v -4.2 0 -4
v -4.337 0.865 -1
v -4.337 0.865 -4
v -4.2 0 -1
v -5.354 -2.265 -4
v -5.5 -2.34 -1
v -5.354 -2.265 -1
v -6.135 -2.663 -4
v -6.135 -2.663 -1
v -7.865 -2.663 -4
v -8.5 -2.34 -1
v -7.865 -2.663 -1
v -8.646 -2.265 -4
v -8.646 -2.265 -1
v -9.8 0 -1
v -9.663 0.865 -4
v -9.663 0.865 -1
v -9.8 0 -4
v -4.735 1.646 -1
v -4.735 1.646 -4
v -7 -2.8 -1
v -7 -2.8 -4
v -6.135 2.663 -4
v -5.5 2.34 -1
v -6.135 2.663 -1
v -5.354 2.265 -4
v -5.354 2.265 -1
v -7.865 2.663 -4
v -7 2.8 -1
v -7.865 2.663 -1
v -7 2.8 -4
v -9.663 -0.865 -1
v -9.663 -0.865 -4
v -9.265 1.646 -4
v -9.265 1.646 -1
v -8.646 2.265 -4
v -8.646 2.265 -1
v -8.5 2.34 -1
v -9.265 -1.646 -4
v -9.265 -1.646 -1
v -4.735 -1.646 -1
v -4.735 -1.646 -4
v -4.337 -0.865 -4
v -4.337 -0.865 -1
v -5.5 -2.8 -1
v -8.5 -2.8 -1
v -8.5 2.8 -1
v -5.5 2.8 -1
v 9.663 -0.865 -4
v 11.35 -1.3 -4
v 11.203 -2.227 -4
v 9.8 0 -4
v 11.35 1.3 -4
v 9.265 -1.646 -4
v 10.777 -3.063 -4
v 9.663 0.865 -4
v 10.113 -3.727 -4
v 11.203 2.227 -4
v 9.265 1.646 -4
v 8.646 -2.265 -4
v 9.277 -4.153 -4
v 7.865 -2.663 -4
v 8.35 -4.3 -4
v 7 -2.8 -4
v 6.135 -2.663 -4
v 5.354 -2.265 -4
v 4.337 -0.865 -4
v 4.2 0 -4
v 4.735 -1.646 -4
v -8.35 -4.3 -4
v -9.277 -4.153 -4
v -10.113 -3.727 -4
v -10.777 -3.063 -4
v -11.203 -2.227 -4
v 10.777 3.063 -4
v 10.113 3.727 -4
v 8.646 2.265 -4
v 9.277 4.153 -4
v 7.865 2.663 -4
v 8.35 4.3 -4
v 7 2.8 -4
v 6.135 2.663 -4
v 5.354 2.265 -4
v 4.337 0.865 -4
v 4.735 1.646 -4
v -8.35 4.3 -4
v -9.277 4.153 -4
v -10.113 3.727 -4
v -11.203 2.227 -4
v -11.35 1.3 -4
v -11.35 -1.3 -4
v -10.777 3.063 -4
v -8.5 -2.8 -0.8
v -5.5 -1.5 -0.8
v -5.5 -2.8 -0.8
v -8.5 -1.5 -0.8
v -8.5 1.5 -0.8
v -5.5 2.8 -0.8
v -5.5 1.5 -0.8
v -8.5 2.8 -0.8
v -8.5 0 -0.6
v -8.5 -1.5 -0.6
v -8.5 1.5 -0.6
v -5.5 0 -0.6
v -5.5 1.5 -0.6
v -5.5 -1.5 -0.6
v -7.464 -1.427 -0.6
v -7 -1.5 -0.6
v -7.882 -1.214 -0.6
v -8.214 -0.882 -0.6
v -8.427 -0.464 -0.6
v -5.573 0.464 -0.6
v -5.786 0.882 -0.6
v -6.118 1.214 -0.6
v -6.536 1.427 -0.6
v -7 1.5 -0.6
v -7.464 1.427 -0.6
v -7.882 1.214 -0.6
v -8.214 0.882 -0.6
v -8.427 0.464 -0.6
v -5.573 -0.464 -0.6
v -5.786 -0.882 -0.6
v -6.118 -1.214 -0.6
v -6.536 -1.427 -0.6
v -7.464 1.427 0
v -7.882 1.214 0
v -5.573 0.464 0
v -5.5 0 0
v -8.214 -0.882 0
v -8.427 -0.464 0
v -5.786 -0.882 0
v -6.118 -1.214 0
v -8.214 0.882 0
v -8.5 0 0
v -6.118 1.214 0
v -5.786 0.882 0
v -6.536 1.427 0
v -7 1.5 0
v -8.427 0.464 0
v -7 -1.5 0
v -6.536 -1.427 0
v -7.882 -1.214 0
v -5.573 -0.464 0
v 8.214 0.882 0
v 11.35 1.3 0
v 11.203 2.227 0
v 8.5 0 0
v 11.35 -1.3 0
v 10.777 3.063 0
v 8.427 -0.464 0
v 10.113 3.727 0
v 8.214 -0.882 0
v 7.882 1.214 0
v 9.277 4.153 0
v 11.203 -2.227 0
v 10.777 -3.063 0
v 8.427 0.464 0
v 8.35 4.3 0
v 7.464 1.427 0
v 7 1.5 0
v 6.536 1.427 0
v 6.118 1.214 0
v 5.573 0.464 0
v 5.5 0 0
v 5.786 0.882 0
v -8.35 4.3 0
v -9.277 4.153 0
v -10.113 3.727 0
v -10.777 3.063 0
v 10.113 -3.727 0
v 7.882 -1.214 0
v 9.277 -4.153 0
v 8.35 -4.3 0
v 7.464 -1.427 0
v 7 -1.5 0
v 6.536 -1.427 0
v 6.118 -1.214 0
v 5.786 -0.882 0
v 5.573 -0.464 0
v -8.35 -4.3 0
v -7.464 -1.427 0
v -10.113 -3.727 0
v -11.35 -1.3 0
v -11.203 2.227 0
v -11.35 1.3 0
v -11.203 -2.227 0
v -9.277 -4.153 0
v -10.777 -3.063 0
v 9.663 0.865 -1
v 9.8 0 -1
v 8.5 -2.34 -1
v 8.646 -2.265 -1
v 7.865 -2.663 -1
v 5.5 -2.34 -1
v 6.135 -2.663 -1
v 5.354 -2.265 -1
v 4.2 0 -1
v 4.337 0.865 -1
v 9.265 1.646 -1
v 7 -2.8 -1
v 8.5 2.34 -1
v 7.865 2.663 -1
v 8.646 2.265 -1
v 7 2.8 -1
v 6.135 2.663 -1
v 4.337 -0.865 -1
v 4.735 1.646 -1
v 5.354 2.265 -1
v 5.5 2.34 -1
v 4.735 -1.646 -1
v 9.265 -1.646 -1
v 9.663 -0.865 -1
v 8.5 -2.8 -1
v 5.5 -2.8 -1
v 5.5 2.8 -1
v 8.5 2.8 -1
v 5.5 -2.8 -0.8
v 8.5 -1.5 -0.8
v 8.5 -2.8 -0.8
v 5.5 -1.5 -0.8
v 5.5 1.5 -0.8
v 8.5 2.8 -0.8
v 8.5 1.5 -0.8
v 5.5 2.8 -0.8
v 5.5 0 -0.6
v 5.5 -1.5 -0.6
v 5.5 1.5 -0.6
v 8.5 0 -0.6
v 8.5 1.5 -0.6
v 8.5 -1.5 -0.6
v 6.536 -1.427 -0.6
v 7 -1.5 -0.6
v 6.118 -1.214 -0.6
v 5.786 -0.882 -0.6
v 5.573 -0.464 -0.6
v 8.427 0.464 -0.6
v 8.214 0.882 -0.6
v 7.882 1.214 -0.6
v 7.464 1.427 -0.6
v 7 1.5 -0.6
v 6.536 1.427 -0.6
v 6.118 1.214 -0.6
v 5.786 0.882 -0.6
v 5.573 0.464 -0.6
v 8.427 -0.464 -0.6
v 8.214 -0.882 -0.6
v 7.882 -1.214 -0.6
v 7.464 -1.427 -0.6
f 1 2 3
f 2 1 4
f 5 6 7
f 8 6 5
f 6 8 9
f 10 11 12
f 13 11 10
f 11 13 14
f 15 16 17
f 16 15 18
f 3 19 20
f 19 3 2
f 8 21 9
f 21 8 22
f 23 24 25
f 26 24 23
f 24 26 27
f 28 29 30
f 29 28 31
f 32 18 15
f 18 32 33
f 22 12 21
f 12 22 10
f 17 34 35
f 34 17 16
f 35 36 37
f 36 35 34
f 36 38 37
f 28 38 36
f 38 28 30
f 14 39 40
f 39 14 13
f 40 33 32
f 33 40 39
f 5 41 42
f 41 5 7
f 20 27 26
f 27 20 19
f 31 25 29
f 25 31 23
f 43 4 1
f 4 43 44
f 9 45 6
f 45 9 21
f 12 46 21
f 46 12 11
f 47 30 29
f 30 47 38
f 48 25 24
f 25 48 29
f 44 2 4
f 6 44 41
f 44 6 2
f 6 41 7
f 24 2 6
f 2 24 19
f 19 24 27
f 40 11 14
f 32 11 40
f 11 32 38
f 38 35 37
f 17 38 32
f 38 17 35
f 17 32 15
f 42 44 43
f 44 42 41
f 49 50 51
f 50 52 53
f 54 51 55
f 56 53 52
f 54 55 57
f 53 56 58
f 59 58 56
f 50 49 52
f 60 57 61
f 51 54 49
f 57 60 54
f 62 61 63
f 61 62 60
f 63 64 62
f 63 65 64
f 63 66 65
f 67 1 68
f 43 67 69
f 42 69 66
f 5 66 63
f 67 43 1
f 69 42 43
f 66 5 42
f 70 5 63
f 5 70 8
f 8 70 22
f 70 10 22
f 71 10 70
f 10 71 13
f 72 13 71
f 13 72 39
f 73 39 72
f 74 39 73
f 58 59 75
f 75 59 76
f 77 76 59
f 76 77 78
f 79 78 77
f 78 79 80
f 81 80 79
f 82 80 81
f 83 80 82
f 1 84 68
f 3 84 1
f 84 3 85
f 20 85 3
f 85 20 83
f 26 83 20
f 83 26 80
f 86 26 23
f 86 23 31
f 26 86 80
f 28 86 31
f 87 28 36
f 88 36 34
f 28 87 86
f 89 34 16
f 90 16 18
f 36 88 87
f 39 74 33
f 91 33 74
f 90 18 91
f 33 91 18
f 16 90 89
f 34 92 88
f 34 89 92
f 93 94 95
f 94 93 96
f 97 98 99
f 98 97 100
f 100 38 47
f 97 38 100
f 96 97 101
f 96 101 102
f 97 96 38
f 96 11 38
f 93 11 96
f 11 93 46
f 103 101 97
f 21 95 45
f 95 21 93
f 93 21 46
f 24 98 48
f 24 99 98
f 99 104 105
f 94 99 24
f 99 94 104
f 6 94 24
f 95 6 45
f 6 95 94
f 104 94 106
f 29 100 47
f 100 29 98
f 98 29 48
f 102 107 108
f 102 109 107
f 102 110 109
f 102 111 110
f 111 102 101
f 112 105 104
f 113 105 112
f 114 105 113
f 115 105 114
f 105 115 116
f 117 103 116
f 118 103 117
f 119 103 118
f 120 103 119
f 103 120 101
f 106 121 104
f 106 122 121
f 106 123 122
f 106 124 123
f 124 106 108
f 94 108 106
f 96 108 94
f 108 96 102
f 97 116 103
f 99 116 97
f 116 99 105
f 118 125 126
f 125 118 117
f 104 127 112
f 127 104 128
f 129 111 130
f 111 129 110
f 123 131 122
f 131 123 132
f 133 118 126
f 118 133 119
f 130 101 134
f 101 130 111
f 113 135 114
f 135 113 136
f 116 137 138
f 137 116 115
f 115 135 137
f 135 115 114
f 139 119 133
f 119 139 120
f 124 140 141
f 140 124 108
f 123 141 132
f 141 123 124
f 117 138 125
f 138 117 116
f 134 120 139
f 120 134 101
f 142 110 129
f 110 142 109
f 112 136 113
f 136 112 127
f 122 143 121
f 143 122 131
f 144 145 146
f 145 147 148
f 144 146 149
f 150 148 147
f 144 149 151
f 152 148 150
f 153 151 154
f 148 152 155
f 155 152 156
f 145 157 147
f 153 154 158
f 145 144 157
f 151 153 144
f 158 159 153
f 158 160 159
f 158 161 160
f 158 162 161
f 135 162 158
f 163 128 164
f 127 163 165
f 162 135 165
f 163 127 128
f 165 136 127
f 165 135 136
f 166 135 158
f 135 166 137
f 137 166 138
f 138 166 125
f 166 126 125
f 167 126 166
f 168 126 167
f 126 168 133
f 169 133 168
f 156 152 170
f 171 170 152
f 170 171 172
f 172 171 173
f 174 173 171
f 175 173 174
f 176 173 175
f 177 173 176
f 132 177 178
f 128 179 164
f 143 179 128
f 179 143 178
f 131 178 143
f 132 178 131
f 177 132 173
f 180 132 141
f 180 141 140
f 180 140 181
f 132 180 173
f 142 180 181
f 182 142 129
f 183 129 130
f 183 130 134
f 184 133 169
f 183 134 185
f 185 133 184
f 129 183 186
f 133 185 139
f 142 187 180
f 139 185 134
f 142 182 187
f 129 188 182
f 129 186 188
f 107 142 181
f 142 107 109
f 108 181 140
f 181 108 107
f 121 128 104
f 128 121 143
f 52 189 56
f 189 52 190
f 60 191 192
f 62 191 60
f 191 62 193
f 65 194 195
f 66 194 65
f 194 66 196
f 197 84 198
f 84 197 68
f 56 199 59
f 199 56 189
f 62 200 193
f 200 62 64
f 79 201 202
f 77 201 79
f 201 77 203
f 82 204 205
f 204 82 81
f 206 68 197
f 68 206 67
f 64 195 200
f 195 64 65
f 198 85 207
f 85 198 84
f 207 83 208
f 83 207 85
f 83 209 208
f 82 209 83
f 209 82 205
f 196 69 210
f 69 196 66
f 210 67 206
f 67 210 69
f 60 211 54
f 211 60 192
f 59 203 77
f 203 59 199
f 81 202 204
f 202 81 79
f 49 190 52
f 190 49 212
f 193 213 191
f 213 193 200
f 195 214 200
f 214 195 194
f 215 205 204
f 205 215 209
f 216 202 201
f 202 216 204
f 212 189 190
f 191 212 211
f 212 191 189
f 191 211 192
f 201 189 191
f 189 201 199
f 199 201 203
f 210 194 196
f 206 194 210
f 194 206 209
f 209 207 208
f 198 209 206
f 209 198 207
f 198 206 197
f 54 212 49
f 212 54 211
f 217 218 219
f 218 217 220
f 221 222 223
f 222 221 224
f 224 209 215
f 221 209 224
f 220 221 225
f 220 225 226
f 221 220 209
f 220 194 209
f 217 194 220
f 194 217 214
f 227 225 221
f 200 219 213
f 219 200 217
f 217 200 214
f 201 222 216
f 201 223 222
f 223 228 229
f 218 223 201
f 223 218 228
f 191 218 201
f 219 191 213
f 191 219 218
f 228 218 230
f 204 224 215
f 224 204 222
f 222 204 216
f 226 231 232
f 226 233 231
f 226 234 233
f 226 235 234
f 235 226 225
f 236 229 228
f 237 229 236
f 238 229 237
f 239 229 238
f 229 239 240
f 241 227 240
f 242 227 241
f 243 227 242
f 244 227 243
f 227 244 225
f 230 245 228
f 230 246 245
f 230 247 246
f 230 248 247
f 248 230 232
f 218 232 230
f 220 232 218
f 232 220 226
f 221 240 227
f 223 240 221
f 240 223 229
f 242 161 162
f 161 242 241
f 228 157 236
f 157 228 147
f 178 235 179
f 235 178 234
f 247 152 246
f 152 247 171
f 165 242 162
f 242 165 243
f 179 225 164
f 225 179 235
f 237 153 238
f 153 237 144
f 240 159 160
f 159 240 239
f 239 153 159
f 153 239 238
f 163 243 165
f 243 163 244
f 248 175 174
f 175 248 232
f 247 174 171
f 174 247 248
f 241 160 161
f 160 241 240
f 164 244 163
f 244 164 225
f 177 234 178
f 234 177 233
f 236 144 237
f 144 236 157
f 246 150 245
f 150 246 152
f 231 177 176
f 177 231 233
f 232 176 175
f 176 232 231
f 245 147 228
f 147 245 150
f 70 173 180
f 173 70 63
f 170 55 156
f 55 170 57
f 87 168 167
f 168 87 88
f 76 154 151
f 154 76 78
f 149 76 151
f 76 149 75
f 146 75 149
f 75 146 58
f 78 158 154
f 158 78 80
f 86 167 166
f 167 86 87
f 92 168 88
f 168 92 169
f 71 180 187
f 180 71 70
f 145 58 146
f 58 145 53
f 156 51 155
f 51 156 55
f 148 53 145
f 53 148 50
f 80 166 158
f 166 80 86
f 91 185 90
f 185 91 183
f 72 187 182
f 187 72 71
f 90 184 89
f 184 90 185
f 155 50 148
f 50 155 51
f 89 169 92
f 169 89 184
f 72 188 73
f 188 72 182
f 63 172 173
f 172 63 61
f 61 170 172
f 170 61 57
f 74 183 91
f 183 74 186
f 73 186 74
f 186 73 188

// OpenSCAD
// file: ../lib/utils.scad
include <params.scad>;

function tol(val) = val - tolerance;

module cone(r, angle, invert=false) {
    h = tan((180 - angle) / 2) * r;
    translate([0, 0, -h]) {
        if (invert) {
                cylinder(r1=r,r2=0,h=h, $fn=20); 
        } else {
            cylinder(r1=0,r2=r,h=h, $fn=20); 
        }
    }
}

module roundrect(vect, r, center=false, $fn=20) {
    sq = len(vect) > 1
        ? [for (i = [0:1:len(vect)-1]) vect[i] - r * 2]
        : vect - r * 2;
    if (center) {
        translate([-(sq[0]+r*2)/2,-(sq[1]+r*2)/2])
        minkowski() {
            square(sq);
            translate([r, r])
                circle(r=r);
        }
    } else {
        minkowski() {
            square(sq);
            translate([r, r])
                circle(r=r);
        }
    }
}

module profile($fn=20) {
    minkowski() {
        translate([fan_case_radius, fan_case_radius, 0])
            square(fan_case - fan_case_radius * 2);
        circle(fan_case_radius, $fn);
    }
}

module fan_mount_points(radius, $fn=20) {
    offset = (fan_case - fan_screw_distance) / 2;
    translate([offset, offset, 0]) {
        circle(radius, $fn);
        translate([fan_screw_distance, 0, 0])
            circle(radius, $fn);
        translate([fan_screw_distance, fan_screw_distance, 0])
            circle(radius, $fn);
        translate([0, fan_screw_distance, 0])
            circle(radius, $fn);
    }
}

module square_grill(width, height, fin_width, fin_count) {
    fin_spacing = width / fin_count;
    difference() {
        square(width);
        union() {
            for (i = [0:1:fin_count]) {
                translate([(i + 1) * fin_spacing - (fin_spacing / 2) - (fin_width / 2), 0, 0])
                    square([fin_width, height]);
            }
        }
    }
}

module bushing(outer_r, inner_r, h) {
    linear_extrude(h)
        difference() {
            circle(r=outer_r);
            circle(r=inner_r);
        }
}

module screw_at_origin(r, d, l, head, head_d, cap, angle) {
    translate([0, 0, -l])
        screw(r, d, l, head, head_d, cap, angle);
}

module screw(r, d, l, head, head_d, cap, angle, fn=20, head_fn) {
    radius = r > 0 ? r : d / 2;
    head_r = head > 0 ? head : head_d / 2;
    hfn = head_fn ? head_fn : fn;

    union() {
        if (angle) {
            translate([0, 0, l])
                cone(head_r, angle, false);
        }
        linear_extrude(l)
            circle(r=radius, $fn=fn);
        if (cap > 0) {
            union() {
                translate([0, 0, l - cap])
                    linear_extrude(cap)
                        circle(r=head_r, $fn=hfn);
                translate([0, 0, l - cap - layer_height])
                    linear_extrude(layer_height)
                        square([radius * 2, head_r*2], center=true);
                translate([0, 0, l - cap - layer_height*2])
                    linear_extrude(layer_height)
                        square([radius * 2, radius*2], center=true);
            }
        }
    }
}

module inset_screw(r, d, l, head, head_d, cap, angle, inset, fn=20, head_fn) {
    screw_height = l - inset;
    head_r = head > 0 ? head : head_d / 2;

    union() {
        screw(
            r=r,
            d=d,
            l=screw_height,
            head=head_r,
            cap=cap,
            angle=angle,
            fn=fn,
            head_fn=head_fn
        );
        translate([0, 0, screw_height])
            linear_extrude(inset)
                circle(r=head_r, $fn=fn);
    }
}

function inch_to_mm(inches) = inches * 25.4;
// file: ../lib/params.scad
/*************/
/** Exhaust **/
/*************/

/**
 * Fan case sizes: used for all fan parts, including adapters, inlets
 * grills.
 */
fan_case = 120;
fan_screw_distance = 105;
fan_case_depth = 25;
fan_case_radius = 5;
fan_case_screw_radius = 2.5;
fan_case_socket_cap_radius = 5.6 / 2;
fan_case_screw_head_radius = 3;
fan_case_screw_head_angle = 90;

/**
 * Fan grill
 */
grill_screw_size = 3;
grill_screw_radius = grill_screw_size / 2;
grill_screw_inset = 2;
grill_radius = 114 / 2;
grill_fin_offset = 10;
grill_fin_thickness = 2;
grill_fin_degrees = 30;

rear_grill_thickness = 2;

front_grill_thickness = 2;
front_grill_fin_count = 6;
front_grill_fin_thickness = 2;

/**
 * Fan duct filter
 */
filter_thickness = 5;
filter_width = fan_screw_distance - fan_case_screw_radius * 3;
filter_offset = (fan_case - filter_width) / 2;

base_retainer_thickness = 2;
base_height = 30;
base_cut_offset = 10;
base_retainer_inset = 4;

/**
 * Fan to duct adapter
 */
adapter_thickness = 2;
adapter_duct_in = 4;
adapter_height = 14;
adapter_duct_height = 50;
flat_adapter_duct_height = 50;
flat_adapter_screw_radius = 2;
flat_adapter_screw_head_radius = 4;

/**
 * Fan adapter filter caddy
 */
caddy_thickness = 2;
caddy_handle_width = 20;
caddy_handle_depth = 10;
caddy_handle_grip_count = 5;
caddy_handle_grip_depth = 1;
caddy_handle_grip_width = 1;
caddy_clip_height = 2;
caddy_clip_depth = 6;
caddy_clip_offset = 1;

/***************/
/** Enclosure **/
/***************/

/**
 * Enclosure foot
 */
foot_lower_radius = 15;
foot_upper_radius = 20;
foot_height = 18;
foot_inset_radius = 4;
foot_inset_depth = 3;
foot_screw_radius = 4;
foot_screw_inset = 6;
foot_screw_head_radius = 8;

/**
 * Power supply attachment
 */
power_supply_case_thickness = 3.0;
power_supply_screw_radius = 1.5;
power_supply_bushing_radius = 7.5;

power_supply_cable_pass_width = 18;
power_supply_cable_pass_height = 5;
power_supply_cable_pass_overhang = 5;
power_supply_cable_pass_overhang_depth = power_supply_case_thickness;
power_supply_cable_pass_depth = 3;
power_supply_cable_pass_thickness = 3;

/**
 * LED strip holder
 */
led_strip_cutout = 0.2;
led_strip_depth = 4;
led_strip_width = 8;
led_strip_screw_offset = 1.5;
led_strip_screw_radius = 1.5;
led_strip_screw_head = 2.8;
led_strip_nut_head = 3.25;
led_strip_nut_inset = 3;
led_strip_screw_inset = 3;

/**************/
/** Filament **/
/**************/

/**
 * Filament case passthrough
 */
through_base_width = 60;
through_base_height = 20;
through_base_depth = 5;
through_base_screw_offset = 10;
through_base_screw_radius = 1.5;
through_base_screw_head = 2.8;
through_base_nut_head = 3.25;
through_base_nut_inset = 3;
through_base_screw_inset = 3;
through_base_fitting_d = 5;
case_thickness = 1;
case_through_radius = 6;
filament_radius = 1;

inlet_length = 10;
inlet_outer_radius = 3;
inlet_inner_radius = 2;
inlet_angle = -20;


/**********/
/** Misc **/
/**********/

// tolerance is used all over the place to decide how closely parts fit
// together; adjust to the tolerances of your printer. 0.2 works fine for
// a Prusa i3 MK3.
tolerance = 0.2;
layer_height = 0.2;
// file: lib/led-strip-holder.scad
include <../../lib/params.scad>;
use <../../lib/utils.scad>;

$fn=50;

total_height = led_strip_screw_head * 2 + led_strip_screw_offset * 2;
total_width = total_height*2 + led_strip_width/2 + led_strip_screw_offset;
screw_offset = led_strip_width/2 + led_strip_screw_offset + led_strip_screw_radius;

module through_profile() {
    linear_extrude(led_strip_depth)
        roundrect([total_width, total_height], 3, center=true);
}

module left_screw_translate() {
    translate([-screw_offset, 0, 0])
        children();
}

module right_screw_translate() {
    translate([screw_offset, 0, 0])
        children();
}

module outer() {
    union() {
        difference() {
            through_profile();
            left_screw_translate()
                screw(
                    r=led_strip_screw_radius,
                    l=led_strip_depth,
                    head=led_strip_screw_head,
                    cap=led_strip_screw_inset
                );
            right_screw_translate()
                screw(
                    r=led_strip_screw_radius,
                    l=led_strip_depth,
                    head=led_strip_screw_head,
                    cap=led_strip_screw_inset
                );
        }
    }
}

module inner() {
    union() {
        difference() {
            union() {
                through_profile();
            }
            left_screw_translate()
                screw(
                    r=led_strip_screw_radius,
                    l=led_strip_depth,
                    head=led_strip_nut_head,
                    cap=led_strip_nut_inset,
                    head_fn=6
                );
            right_screw_translate()
                screw(
                    r=led_strip_screw_radius,
                    l=led_strip_depth,
                    head=led_strip_nut_head,
                    cap=led_strip_nut_inset,
                    head_fn=6
                );
            linear_extrude(led_strip_cutout)
                square([led_strip_width, total_width], center=true);
        }
    }
}

module drill_guide() {
    difference() {
        through_profile();
        cylinder(r=led_strip_screw_radius, h=led_strip_depth);
        left_screw_translate()
            cylinder(r=led_strip_screw_radius, h=led_strip_depth);
        right_screw_translate()
            cylinder(r=led_strip_screw_radius, h=led_strip_depth);
        linear_extrude(led_strip_cutout)
            square([led_strip_width, total_width], center=true);
    }
}
// main file
use <lib/led-strip-holder.scad>;

$fn=50;

rotate([180, 0, 0])
    outer();
